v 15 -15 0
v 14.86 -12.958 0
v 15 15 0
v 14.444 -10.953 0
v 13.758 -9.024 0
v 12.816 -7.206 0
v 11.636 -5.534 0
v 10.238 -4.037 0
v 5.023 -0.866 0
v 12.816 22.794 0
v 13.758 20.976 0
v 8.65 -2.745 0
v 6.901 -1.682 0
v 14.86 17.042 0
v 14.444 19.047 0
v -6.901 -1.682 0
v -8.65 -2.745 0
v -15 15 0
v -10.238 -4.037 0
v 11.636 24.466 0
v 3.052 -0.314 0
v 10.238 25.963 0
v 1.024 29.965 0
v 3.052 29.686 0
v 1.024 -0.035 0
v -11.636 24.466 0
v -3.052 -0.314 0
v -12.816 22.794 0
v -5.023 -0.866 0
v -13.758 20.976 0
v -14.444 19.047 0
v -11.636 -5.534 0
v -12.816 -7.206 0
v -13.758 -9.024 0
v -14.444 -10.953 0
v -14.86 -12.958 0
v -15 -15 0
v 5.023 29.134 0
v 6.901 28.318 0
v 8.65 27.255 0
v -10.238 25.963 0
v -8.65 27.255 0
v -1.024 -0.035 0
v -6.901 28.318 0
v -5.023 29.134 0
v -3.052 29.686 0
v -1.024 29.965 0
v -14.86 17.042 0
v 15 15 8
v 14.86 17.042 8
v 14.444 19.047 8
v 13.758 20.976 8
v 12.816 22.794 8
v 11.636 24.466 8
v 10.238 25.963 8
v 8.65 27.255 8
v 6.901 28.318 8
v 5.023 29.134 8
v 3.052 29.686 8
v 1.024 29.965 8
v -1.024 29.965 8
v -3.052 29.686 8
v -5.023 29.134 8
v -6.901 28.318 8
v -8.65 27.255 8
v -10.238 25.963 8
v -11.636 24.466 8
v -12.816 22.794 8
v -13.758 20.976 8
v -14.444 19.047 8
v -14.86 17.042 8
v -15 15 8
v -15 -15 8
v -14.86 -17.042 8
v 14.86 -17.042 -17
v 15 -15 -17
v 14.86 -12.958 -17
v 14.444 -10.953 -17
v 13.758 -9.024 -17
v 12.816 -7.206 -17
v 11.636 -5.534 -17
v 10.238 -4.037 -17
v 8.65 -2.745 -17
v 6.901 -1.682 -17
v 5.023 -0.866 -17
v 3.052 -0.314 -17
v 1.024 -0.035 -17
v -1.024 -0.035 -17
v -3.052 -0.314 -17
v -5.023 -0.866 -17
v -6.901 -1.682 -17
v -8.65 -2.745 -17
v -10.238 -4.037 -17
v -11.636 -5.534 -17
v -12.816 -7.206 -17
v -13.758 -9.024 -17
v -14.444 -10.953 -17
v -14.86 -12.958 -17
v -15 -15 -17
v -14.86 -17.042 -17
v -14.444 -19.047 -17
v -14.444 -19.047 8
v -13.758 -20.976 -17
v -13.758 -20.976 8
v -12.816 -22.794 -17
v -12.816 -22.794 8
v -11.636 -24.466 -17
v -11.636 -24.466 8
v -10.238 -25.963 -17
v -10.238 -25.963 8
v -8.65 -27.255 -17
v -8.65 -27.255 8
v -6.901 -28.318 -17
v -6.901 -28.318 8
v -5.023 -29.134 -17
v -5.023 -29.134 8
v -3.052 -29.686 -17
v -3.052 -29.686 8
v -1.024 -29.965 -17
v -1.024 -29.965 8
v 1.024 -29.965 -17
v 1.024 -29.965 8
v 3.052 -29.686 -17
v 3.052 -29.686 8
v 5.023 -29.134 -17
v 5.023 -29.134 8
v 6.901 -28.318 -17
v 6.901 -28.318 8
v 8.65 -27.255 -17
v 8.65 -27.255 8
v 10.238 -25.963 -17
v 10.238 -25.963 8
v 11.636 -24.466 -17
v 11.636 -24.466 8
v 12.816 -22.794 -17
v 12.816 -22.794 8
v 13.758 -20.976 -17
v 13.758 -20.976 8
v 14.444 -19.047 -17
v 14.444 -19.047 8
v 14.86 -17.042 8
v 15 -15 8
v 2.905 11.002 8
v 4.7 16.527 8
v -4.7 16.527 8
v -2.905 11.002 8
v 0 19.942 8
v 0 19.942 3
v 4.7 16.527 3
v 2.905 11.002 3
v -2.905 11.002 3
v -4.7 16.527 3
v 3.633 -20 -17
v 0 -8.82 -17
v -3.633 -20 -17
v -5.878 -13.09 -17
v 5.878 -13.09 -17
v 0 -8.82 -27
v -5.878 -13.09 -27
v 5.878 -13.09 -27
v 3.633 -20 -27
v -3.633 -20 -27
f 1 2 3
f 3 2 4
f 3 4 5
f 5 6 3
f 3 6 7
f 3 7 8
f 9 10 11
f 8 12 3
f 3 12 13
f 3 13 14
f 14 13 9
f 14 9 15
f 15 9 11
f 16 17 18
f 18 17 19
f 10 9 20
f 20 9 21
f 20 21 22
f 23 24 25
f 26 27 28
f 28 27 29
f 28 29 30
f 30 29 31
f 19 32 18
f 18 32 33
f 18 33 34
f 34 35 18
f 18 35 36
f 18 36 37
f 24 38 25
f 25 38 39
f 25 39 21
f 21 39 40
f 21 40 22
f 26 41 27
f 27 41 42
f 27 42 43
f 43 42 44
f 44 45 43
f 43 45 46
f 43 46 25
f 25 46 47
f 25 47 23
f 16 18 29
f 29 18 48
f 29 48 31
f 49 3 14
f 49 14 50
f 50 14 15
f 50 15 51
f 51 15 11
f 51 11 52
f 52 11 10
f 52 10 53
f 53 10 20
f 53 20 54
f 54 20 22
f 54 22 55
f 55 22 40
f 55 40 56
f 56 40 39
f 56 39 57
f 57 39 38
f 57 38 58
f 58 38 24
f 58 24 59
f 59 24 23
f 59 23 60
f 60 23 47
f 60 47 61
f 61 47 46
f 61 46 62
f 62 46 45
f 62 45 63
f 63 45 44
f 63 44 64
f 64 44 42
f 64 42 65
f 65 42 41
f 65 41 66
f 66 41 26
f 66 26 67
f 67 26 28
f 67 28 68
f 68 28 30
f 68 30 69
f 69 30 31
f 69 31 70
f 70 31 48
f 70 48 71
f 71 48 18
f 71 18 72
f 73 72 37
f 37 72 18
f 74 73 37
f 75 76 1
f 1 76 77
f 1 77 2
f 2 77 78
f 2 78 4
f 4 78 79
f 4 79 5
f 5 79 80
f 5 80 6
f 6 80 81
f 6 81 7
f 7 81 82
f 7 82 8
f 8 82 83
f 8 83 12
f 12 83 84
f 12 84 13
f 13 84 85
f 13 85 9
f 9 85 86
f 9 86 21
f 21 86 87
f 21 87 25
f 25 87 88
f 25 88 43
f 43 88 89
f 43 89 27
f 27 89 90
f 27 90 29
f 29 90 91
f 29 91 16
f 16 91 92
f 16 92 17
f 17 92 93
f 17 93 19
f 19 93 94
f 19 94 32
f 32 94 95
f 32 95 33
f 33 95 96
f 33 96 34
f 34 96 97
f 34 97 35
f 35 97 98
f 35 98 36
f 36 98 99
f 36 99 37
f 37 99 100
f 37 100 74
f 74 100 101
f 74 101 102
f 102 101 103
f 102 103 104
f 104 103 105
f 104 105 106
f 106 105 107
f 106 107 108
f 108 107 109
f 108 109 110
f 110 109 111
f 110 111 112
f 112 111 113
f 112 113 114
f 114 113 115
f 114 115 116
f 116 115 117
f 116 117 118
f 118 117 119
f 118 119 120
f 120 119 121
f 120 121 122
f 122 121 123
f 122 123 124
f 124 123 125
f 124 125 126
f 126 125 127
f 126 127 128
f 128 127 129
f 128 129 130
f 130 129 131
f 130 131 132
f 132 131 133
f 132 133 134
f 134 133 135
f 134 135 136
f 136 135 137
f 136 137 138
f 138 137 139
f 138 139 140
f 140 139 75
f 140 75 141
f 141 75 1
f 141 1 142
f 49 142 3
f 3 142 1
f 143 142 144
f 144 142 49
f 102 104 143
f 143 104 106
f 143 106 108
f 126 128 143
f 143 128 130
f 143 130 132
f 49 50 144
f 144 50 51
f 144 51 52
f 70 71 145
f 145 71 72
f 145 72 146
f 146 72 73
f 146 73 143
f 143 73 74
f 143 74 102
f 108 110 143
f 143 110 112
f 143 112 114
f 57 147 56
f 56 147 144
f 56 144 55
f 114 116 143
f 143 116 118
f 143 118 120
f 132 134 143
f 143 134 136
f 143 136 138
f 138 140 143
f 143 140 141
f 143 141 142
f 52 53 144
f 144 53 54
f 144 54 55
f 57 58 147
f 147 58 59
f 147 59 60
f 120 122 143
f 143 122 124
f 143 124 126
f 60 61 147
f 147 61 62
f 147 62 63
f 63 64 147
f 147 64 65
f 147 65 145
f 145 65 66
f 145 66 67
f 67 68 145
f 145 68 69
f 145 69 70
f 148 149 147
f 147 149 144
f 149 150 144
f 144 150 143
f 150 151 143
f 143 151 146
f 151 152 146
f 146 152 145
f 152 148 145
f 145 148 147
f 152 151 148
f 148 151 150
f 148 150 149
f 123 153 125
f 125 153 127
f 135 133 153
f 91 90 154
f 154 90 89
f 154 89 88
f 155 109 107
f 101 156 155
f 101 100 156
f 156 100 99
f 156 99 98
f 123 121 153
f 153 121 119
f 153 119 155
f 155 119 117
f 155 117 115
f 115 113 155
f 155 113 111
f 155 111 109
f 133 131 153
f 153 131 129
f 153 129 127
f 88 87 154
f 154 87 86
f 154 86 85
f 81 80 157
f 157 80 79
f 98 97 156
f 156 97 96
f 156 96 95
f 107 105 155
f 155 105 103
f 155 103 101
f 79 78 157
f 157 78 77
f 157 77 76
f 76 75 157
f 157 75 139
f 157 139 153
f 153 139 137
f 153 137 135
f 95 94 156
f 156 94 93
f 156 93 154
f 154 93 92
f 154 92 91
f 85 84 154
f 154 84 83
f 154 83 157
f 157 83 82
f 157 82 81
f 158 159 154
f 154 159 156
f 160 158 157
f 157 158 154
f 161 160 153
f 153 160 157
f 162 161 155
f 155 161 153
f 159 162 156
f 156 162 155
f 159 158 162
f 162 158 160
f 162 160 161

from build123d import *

# Parameters (mm, degrees)
EXTRUDE_1_DEPTH     = 8
CUT_EXTRUDE_1_DEPTH = 5
EXTRUDE_START       = 17
SKETCH_3_R          = 15
EXTRUDE_2_DEPTH     = 17
EXTRUDE_3_DEPTH     = 10


with BuildPart() as part:
    # 스케치1 → 보스-돌출1 (new body)
    with BuildSketch(Plane.XY):
        with BuildLine():
            Line((-15, 15), (-15, -15))
            ThreePointArc((-15, -15), (0, -30), (15, -15))
            Line((15, -15), (15, 15))
            ThreePointArc((15, 15), (0, 30), (-15, 15))
        make_face()
    extrude(amount=EXTRUDE_1_DEPTH)

    # 스케치2 → 컷-돌출1 (cut)
    with BuildSketch(Plane.XY.offset(8)):
        Polygon((0, 19.942281197), (-4.700388737, 16.527248881), (-2.905, 11.001610521), (2.905, 11.001610521), (4.700388737, 16.527248881), align=None)
    extrude(amount=-CUT_EXTRUDE_1_DEPTH, mode=Mode.SUBTRACT)

    # 스케치3 → 보스-돌출2 (add)
    with BuildSketch(Plane(origin=(0, 0, 0), x_dir=(-1, 0, 0), z_dir=(0, 0, -1)).offset(EXTRUDE_START)):
        with Locations((0, -15)):
            Circle(SKETCH_3_R)
    extrude(amount=-EXTRUDE_2_DEPTH)

    # 스케치4 → 보스-돌출3 (add)
    with BuildSketch(Plane(origin=(0, 0, -17), x_dir=(-1, 0, 0), z_dir=(0, 0, -1))):
        Polygon((0, -8.819660113), (-5.877852523, -13.090169944), (-3.63271264, -20), (3.63271264, -20), (5.877852523, -13.090169944), align=None)
    extrude(amount=EXTRUDE_3_DEPTH)


solid = part.part
